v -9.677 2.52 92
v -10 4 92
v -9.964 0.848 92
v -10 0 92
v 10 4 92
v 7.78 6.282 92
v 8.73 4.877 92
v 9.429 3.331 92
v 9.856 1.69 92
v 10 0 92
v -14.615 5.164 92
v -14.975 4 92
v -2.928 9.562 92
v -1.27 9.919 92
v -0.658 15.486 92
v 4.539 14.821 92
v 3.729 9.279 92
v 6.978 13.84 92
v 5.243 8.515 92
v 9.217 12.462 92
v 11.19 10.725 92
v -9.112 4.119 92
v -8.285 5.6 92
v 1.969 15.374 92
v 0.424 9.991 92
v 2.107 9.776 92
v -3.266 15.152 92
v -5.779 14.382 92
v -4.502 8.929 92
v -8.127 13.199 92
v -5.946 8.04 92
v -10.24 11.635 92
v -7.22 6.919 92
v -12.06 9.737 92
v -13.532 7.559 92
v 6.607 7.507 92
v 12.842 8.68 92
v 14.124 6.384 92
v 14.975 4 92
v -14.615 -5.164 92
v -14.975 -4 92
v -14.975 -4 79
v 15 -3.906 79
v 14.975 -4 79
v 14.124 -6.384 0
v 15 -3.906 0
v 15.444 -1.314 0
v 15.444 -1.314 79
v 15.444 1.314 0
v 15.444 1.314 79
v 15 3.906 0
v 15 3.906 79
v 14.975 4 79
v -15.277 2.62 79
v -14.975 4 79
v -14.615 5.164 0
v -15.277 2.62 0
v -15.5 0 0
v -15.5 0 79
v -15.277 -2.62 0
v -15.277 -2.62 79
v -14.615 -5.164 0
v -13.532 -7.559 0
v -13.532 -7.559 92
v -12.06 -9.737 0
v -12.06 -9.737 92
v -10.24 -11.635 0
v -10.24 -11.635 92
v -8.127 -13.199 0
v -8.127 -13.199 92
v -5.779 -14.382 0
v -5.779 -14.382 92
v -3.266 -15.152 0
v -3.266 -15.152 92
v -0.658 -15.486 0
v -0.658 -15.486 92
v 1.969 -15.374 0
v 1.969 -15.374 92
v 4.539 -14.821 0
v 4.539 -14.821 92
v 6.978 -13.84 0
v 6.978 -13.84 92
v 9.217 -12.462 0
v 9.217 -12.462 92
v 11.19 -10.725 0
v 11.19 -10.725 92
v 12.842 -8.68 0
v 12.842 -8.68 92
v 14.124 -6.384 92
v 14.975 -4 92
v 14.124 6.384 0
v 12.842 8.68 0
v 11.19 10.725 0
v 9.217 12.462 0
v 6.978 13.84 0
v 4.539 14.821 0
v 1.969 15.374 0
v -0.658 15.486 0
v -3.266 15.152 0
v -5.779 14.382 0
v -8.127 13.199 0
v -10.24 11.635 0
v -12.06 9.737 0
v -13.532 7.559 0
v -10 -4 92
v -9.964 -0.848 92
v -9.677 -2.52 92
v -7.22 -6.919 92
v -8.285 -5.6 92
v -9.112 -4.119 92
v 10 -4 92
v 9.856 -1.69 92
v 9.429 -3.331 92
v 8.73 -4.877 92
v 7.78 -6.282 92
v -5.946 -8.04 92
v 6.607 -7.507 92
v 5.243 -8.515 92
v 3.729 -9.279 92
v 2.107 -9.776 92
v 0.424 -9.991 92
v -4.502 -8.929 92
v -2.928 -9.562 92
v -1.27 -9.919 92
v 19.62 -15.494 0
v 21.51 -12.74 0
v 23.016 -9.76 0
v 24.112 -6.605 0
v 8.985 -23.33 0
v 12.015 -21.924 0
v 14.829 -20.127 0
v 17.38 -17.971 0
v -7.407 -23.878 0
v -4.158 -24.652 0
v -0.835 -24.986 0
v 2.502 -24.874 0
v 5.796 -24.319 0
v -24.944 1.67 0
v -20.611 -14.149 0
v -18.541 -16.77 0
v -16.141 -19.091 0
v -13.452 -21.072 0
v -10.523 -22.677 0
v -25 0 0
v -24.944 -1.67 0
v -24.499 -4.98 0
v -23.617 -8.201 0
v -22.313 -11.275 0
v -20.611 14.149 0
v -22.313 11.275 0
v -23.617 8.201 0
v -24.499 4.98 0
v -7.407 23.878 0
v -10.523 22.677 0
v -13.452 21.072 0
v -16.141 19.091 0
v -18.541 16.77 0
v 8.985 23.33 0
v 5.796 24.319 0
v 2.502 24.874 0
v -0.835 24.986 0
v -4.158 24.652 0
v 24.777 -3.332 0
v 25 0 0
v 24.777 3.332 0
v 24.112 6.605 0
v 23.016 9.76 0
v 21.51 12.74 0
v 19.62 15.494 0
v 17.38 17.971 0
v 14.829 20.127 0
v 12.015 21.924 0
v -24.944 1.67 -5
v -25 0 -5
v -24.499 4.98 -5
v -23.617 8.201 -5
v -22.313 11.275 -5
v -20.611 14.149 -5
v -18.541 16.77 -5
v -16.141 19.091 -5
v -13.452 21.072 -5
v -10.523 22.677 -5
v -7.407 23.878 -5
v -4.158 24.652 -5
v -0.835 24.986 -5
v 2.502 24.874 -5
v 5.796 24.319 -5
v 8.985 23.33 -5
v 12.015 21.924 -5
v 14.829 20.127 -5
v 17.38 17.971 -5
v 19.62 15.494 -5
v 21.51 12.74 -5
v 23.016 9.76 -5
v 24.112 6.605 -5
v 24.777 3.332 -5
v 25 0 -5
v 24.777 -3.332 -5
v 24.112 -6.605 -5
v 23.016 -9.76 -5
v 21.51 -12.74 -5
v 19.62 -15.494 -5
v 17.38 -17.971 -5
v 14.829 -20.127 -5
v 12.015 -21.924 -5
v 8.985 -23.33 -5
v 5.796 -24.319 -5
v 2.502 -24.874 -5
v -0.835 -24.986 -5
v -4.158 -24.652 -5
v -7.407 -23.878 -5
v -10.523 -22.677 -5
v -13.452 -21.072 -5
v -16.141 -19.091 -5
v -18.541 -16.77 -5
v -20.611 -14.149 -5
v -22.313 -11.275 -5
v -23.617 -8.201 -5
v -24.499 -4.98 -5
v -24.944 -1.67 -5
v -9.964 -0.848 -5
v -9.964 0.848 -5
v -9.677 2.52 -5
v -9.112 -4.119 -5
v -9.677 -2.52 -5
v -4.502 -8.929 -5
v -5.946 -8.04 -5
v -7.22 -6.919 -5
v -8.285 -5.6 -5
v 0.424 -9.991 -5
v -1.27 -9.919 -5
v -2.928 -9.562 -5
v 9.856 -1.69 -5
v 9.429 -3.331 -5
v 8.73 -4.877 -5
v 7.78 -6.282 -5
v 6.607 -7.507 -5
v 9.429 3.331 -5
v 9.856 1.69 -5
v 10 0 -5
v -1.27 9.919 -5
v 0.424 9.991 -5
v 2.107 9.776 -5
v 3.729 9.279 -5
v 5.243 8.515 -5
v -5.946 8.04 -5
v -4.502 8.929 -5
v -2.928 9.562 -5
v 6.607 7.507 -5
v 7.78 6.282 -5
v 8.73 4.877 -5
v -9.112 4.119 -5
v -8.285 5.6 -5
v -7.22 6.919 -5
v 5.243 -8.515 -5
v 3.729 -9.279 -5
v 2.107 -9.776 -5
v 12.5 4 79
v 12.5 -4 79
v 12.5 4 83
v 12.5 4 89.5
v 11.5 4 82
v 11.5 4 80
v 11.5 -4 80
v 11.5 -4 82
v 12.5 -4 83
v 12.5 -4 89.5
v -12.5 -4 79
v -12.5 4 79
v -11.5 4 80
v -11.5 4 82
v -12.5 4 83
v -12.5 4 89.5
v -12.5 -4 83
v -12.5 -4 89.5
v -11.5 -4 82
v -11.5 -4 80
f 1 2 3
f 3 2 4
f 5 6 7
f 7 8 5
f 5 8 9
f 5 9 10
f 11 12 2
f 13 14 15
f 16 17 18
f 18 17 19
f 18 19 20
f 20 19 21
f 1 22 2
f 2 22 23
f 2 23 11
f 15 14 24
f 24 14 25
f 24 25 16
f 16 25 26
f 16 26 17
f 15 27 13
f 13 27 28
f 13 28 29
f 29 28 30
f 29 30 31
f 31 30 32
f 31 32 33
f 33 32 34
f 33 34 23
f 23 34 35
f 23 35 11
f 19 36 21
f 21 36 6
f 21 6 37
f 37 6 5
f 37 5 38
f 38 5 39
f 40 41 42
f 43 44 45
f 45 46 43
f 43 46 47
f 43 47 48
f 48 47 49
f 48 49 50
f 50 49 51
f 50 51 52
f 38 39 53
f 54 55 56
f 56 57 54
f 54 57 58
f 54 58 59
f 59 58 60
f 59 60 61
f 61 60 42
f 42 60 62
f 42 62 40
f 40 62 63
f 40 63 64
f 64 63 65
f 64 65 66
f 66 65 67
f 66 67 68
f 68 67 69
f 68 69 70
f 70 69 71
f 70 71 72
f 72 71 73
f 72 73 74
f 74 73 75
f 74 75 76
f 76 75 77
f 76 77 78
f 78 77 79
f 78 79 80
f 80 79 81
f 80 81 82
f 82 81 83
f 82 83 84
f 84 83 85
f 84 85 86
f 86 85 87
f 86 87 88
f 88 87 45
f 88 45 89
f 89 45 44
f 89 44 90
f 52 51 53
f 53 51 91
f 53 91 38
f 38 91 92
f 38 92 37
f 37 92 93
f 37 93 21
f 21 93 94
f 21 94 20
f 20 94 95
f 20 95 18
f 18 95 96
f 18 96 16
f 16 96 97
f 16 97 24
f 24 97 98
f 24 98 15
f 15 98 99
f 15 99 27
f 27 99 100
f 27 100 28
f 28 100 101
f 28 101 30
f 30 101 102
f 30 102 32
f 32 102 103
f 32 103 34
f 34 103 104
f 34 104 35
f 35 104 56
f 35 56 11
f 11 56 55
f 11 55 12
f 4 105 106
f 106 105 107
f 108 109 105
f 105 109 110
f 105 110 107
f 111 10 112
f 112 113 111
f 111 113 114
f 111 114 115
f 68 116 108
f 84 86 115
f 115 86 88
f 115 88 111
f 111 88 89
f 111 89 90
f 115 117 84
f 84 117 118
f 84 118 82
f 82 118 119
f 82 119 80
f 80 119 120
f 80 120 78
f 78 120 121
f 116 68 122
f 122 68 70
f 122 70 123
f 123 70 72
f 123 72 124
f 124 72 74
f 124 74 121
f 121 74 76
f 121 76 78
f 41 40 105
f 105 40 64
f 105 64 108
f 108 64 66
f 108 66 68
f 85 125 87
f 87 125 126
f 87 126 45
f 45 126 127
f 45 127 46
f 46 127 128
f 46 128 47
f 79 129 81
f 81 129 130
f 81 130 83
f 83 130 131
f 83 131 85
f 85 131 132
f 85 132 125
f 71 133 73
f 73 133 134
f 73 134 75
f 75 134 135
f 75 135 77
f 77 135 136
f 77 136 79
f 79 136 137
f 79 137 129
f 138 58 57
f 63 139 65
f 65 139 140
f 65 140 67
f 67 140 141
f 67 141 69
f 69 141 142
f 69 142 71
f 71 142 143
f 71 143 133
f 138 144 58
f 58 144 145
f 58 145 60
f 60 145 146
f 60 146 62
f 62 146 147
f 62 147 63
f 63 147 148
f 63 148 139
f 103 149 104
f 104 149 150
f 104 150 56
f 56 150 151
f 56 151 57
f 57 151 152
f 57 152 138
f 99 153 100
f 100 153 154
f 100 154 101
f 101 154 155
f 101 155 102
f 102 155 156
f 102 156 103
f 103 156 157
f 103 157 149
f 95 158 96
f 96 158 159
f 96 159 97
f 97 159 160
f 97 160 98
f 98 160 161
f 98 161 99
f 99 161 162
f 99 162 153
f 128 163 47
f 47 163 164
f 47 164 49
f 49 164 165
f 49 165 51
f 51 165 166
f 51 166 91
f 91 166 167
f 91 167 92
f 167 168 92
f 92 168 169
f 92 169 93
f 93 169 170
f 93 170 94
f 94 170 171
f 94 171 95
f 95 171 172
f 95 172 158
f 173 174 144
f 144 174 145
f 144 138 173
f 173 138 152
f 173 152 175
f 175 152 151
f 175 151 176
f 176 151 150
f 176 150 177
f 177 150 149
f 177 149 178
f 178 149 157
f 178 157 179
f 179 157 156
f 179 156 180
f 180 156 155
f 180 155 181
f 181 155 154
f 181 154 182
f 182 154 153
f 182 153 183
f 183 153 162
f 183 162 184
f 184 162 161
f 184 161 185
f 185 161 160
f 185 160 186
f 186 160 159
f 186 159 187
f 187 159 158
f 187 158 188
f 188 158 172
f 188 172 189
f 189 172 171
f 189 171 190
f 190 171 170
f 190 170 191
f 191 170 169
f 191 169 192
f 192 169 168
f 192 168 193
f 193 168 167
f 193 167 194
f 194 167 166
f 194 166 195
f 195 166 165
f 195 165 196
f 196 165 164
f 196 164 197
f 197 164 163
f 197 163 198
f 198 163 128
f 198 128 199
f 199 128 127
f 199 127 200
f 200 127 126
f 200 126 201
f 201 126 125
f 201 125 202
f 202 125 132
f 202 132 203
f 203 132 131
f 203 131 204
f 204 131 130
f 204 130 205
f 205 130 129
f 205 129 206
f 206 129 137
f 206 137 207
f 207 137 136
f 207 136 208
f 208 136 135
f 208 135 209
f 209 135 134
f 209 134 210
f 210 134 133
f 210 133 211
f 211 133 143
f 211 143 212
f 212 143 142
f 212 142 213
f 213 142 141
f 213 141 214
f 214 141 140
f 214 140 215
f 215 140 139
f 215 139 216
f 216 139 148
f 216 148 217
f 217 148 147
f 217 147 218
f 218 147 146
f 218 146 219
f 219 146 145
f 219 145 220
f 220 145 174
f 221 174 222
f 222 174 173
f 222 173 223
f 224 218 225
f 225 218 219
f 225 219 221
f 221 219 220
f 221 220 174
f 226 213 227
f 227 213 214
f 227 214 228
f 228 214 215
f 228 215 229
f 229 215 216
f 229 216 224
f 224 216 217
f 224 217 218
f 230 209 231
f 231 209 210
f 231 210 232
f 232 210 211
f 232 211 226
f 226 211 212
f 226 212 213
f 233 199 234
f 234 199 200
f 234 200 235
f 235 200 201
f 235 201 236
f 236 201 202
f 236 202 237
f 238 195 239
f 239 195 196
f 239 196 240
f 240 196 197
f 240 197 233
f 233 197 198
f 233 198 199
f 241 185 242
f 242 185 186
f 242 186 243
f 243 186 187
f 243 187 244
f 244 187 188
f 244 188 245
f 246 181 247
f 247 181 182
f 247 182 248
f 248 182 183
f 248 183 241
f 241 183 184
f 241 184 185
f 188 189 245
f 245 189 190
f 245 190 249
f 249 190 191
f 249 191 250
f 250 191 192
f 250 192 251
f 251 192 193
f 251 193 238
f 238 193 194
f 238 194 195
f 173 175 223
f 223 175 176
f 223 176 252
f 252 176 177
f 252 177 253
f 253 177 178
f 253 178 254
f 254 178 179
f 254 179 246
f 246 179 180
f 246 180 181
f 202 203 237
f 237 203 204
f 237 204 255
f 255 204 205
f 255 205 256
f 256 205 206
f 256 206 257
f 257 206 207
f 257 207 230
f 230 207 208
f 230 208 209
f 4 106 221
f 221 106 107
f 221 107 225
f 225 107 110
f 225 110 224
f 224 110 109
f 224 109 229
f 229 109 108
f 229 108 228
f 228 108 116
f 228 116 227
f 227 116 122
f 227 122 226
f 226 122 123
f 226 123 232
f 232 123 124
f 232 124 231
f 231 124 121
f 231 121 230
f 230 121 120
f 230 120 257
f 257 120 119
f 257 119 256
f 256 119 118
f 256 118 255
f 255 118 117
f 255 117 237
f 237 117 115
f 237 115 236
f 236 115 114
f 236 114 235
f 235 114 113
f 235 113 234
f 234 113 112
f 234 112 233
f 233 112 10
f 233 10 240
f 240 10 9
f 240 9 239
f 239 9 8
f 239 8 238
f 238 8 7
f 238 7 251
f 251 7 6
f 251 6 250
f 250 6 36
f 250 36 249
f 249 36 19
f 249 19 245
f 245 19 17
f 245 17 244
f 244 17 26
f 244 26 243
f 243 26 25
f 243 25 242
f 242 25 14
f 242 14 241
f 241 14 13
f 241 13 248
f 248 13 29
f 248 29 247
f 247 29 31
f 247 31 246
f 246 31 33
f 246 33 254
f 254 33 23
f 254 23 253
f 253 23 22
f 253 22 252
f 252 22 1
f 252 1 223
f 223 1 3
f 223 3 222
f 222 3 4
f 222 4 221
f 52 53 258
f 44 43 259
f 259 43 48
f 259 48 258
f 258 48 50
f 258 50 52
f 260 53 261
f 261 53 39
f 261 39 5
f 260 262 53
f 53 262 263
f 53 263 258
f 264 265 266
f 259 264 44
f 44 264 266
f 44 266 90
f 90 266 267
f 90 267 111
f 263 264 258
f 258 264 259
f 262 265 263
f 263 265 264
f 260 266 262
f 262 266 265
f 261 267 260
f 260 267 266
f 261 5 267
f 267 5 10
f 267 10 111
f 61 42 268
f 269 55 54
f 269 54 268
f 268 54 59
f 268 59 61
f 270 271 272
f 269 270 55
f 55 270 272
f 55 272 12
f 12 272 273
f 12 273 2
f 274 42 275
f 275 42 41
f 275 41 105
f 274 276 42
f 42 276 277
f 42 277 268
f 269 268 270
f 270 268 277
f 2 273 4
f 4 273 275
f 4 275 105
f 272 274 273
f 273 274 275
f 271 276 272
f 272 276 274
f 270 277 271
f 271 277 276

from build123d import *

# Parameters (mm, degrees)
AXLE_BASE_SKETCH_R        = 15.5
AXLE_DEPTH                = 92
GUARD_BASE_R              = 25
GUARD_DEPTH               = 5
INNER_AXLE_HOLE_BASE_R    = 10
INNER_AXLE_HOLE_DEPTH     = 104.242433137
COUPLING_TOOTH_HOLE_DEPTH = 4


with BuildPart() as part:
    # Axle base sketch → Axle (new body)
    with BuildSketch(Plane.XY):
        Circle(AXLE_BASE_SKETCH_R)
    extrude(amount=AXLE_DEPTH)

    # Guard base → Guard (add)
    with BuildSketch(Plane(origin=(0, 0, 0), x_dir=(-1, 0, 0), z_dir=(0, 0, -1))):
        Circle(GUARD_BASE_R)
    extrude(amount=GUARD_DEPTH)

    # Inner axle hole base → Inner axle hole (cut, through all)
    with BuildSketch(Plane.XY.offset(92)):
        Circle(INNER_AXLE_HOLE_BASE_R)
    extrude(amount=-INNER_AXLE_HOLE_DEPTH, mode=Mode.SUBTRACT)

    # Coupling tooth base → Coupling tooth hole (cut, symmetric)
    with BuildSketch(Plane(origin=(0, 0, 0), x_dir=(1, 0, 0), z_dir=(0, 1, 0))):
        Polygon((12.5, -89.5), (10, -92), (15.5, -92), (15.5, -79), (12.5, -79), (11.5, -80), (11.5, -82), (12.5, -83), align=None)
    coupling_tooth_hole = extrude(amount=COUPLING_TOOTH_HOLE_DEPTH, both=True, mode=Mode.SUBTRACT)

    # Coupling teeth: Coupling tooth hole across plane
    add(coupling_tooth_hole.mirror(Plane(origin=(0, 0, 0), x_dir=(0, 0, 1), z_dir=(1, 0, 0))), mode=Mode.SUBTRACT)


solid = part.part
